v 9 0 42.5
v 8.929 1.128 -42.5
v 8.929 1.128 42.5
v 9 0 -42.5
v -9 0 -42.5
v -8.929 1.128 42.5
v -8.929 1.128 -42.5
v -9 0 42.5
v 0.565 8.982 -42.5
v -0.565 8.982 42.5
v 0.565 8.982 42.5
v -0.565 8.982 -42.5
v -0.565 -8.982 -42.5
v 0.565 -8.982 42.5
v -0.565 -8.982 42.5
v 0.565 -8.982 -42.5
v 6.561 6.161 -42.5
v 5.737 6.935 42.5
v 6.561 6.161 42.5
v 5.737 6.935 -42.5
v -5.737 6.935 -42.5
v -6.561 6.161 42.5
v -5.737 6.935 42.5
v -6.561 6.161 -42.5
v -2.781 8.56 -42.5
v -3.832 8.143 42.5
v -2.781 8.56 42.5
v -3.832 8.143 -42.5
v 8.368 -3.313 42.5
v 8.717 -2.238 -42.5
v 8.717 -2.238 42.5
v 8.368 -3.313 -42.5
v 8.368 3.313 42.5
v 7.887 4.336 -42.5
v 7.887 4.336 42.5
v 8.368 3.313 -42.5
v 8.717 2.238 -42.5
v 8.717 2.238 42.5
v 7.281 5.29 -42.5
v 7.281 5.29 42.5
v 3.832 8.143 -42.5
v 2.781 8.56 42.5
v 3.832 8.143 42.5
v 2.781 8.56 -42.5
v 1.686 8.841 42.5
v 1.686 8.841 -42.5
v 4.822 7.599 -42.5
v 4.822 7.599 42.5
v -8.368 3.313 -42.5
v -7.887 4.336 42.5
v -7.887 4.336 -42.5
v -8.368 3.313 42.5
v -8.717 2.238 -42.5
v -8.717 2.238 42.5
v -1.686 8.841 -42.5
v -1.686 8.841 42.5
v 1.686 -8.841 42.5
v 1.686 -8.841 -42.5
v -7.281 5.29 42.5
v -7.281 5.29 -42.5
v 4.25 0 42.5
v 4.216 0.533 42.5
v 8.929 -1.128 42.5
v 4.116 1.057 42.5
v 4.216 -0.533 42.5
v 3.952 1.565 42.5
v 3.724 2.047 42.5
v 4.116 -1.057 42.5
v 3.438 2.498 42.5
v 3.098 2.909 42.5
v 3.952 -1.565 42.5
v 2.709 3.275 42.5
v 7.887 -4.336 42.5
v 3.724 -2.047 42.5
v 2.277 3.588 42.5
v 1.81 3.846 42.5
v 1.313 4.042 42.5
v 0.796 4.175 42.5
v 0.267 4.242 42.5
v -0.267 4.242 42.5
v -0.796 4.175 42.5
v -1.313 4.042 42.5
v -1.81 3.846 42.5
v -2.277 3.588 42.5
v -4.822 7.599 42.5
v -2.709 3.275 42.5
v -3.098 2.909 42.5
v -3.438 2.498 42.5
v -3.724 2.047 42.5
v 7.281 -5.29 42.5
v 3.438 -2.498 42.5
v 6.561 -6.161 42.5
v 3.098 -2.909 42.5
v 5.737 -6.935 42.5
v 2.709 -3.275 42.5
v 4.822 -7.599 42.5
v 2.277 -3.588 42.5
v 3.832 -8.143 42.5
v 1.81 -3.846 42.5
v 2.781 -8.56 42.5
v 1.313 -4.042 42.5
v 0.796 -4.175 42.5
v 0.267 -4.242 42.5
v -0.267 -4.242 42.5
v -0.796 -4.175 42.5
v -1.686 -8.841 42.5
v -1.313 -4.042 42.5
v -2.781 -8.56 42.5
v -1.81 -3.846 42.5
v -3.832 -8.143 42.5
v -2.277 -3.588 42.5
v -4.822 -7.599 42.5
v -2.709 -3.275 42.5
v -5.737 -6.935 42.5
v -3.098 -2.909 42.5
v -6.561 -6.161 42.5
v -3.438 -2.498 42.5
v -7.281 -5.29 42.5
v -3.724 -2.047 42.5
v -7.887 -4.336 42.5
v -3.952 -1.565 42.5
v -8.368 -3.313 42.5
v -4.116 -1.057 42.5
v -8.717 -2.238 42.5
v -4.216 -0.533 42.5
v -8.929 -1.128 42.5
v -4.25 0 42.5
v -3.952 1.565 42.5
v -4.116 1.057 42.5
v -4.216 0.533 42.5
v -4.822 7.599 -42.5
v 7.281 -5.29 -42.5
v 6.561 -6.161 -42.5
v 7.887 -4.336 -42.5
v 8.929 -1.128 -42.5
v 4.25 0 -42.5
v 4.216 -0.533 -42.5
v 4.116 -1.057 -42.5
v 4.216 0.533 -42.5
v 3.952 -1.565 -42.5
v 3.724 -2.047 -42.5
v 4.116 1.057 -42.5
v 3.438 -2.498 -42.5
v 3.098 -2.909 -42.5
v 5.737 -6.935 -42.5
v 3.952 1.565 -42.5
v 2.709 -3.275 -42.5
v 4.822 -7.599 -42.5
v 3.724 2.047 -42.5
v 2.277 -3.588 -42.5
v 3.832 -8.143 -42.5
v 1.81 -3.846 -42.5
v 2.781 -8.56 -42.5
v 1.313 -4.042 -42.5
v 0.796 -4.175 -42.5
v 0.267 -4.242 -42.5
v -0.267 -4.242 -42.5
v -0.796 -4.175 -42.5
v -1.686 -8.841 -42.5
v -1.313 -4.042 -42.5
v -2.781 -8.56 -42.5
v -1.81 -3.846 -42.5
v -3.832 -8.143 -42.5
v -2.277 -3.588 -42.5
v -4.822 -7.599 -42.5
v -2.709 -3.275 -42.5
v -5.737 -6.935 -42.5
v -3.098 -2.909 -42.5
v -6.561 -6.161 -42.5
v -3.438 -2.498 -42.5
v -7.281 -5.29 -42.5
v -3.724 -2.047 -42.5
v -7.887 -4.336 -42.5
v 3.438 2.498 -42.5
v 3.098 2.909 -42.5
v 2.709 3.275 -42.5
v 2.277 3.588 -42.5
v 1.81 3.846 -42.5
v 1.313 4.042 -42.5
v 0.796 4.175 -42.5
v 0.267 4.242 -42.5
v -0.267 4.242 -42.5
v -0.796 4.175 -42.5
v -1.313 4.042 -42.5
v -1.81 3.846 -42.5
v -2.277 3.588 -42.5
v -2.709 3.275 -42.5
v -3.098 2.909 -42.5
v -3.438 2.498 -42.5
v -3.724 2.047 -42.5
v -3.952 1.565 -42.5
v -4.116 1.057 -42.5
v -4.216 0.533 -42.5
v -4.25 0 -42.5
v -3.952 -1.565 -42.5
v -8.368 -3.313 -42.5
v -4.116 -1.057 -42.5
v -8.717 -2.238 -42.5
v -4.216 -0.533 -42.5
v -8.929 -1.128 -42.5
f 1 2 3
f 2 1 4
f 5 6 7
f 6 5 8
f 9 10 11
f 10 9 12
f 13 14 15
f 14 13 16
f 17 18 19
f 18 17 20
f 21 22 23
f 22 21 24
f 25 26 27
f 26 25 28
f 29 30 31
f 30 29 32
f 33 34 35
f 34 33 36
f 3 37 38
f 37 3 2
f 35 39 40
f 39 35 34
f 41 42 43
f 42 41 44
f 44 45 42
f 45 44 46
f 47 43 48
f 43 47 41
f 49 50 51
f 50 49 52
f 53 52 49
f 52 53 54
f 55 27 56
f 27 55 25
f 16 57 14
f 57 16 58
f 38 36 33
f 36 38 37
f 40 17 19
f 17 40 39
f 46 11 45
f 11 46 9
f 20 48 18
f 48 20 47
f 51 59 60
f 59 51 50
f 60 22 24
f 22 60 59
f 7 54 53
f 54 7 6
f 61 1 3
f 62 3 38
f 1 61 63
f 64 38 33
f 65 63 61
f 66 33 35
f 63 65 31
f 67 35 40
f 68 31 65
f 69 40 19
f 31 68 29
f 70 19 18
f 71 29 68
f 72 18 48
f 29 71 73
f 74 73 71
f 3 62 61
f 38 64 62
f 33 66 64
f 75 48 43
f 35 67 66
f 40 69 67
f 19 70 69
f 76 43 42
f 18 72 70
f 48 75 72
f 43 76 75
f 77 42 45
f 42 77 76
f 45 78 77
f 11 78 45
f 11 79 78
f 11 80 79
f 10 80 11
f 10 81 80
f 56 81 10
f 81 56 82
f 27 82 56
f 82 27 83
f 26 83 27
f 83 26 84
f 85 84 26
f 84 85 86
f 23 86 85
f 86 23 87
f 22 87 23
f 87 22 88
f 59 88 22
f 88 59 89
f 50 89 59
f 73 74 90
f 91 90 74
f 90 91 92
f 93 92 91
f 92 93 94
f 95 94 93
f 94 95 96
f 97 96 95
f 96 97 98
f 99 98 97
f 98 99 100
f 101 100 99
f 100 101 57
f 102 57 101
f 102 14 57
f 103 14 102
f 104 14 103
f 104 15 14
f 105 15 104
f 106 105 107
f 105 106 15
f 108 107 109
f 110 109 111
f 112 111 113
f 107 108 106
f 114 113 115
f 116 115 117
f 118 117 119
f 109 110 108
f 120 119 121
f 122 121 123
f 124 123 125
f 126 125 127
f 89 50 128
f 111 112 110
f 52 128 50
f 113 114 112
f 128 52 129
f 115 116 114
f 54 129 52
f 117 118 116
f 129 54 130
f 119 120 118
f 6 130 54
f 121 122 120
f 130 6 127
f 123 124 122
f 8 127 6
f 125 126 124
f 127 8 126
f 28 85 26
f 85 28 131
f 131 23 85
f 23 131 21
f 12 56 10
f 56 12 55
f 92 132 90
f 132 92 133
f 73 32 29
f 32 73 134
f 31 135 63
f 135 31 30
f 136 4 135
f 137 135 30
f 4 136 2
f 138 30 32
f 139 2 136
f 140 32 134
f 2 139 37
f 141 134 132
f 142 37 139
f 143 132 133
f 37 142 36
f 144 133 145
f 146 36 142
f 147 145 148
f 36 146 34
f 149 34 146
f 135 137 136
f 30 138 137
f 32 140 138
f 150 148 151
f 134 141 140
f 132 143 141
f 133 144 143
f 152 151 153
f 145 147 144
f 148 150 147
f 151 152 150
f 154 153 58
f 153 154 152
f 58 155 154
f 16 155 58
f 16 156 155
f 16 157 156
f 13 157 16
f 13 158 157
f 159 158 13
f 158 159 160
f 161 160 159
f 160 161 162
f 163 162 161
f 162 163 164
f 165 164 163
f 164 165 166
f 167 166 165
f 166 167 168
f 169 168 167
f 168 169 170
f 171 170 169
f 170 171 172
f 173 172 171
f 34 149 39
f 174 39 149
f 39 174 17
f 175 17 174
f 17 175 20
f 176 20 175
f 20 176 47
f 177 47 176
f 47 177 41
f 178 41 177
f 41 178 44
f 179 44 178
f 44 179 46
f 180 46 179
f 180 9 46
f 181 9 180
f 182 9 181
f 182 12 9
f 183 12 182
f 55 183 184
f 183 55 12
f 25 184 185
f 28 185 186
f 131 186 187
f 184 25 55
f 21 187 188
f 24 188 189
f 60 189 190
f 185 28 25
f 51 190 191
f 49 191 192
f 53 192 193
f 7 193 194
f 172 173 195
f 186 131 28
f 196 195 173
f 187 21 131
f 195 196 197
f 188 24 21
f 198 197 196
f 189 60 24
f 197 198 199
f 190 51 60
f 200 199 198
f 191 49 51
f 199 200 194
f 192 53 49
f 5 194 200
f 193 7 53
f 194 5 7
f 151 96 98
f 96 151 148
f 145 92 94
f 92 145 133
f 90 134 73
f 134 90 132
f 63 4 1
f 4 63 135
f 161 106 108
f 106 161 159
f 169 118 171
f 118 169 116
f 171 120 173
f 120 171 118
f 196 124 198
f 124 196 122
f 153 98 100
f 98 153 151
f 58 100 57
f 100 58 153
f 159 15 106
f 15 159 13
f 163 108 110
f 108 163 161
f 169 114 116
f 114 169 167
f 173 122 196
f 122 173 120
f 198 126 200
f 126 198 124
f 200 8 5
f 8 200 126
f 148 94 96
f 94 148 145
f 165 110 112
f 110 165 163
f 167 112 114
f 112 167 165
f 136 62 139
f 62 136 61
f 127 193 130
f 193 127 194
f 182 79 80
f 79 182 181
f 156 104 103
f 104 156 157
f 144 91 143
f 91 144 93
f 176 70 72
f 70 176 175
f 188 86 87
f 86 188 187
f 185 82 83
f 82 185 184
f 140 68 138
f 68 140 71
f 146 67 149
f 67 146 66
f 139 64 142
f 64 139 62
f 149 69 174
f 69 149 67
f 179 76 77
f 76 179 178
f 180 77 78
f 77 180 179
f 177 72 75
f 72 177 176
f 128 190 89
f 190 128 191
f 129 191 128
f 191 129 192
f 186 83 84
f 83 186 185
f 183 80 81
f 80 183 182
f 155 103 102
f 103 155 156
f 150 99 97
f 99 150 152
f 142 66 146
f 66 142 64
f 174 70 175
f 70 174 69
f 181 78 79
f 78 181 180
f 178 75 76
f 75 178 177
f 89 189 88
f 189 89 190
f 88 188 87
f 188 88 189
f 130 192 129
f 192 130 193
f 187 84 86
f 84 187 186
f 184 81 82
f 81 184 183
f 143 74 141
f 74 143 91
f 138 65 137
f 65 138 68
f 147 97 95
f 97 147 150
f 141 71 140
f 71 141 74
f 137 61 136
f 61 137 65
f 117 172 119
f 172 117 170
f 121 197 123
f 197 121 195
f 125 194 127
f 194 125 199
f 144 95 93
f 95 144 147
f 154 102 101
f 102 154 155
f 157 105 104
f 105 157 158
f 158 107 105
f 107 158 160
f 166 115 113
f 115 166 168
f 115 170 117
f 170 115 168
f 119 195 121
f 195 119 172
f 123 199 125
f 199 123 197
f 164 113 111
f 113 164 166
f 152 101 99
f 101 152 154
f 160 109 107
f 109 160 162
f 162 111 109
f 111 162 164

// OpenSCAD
$fn = 50;


difference() {
	union() {
		translate(v = [0, 0, -42.5000000000]) {
			cylinder(h = 85, r = 9.0000000000);
		}
	}
	union() {
		translate(v = [0, 0, -100.0000000000]) {
			cylinder(h = 200, r = 4.2500000000);
		}
	}
}
